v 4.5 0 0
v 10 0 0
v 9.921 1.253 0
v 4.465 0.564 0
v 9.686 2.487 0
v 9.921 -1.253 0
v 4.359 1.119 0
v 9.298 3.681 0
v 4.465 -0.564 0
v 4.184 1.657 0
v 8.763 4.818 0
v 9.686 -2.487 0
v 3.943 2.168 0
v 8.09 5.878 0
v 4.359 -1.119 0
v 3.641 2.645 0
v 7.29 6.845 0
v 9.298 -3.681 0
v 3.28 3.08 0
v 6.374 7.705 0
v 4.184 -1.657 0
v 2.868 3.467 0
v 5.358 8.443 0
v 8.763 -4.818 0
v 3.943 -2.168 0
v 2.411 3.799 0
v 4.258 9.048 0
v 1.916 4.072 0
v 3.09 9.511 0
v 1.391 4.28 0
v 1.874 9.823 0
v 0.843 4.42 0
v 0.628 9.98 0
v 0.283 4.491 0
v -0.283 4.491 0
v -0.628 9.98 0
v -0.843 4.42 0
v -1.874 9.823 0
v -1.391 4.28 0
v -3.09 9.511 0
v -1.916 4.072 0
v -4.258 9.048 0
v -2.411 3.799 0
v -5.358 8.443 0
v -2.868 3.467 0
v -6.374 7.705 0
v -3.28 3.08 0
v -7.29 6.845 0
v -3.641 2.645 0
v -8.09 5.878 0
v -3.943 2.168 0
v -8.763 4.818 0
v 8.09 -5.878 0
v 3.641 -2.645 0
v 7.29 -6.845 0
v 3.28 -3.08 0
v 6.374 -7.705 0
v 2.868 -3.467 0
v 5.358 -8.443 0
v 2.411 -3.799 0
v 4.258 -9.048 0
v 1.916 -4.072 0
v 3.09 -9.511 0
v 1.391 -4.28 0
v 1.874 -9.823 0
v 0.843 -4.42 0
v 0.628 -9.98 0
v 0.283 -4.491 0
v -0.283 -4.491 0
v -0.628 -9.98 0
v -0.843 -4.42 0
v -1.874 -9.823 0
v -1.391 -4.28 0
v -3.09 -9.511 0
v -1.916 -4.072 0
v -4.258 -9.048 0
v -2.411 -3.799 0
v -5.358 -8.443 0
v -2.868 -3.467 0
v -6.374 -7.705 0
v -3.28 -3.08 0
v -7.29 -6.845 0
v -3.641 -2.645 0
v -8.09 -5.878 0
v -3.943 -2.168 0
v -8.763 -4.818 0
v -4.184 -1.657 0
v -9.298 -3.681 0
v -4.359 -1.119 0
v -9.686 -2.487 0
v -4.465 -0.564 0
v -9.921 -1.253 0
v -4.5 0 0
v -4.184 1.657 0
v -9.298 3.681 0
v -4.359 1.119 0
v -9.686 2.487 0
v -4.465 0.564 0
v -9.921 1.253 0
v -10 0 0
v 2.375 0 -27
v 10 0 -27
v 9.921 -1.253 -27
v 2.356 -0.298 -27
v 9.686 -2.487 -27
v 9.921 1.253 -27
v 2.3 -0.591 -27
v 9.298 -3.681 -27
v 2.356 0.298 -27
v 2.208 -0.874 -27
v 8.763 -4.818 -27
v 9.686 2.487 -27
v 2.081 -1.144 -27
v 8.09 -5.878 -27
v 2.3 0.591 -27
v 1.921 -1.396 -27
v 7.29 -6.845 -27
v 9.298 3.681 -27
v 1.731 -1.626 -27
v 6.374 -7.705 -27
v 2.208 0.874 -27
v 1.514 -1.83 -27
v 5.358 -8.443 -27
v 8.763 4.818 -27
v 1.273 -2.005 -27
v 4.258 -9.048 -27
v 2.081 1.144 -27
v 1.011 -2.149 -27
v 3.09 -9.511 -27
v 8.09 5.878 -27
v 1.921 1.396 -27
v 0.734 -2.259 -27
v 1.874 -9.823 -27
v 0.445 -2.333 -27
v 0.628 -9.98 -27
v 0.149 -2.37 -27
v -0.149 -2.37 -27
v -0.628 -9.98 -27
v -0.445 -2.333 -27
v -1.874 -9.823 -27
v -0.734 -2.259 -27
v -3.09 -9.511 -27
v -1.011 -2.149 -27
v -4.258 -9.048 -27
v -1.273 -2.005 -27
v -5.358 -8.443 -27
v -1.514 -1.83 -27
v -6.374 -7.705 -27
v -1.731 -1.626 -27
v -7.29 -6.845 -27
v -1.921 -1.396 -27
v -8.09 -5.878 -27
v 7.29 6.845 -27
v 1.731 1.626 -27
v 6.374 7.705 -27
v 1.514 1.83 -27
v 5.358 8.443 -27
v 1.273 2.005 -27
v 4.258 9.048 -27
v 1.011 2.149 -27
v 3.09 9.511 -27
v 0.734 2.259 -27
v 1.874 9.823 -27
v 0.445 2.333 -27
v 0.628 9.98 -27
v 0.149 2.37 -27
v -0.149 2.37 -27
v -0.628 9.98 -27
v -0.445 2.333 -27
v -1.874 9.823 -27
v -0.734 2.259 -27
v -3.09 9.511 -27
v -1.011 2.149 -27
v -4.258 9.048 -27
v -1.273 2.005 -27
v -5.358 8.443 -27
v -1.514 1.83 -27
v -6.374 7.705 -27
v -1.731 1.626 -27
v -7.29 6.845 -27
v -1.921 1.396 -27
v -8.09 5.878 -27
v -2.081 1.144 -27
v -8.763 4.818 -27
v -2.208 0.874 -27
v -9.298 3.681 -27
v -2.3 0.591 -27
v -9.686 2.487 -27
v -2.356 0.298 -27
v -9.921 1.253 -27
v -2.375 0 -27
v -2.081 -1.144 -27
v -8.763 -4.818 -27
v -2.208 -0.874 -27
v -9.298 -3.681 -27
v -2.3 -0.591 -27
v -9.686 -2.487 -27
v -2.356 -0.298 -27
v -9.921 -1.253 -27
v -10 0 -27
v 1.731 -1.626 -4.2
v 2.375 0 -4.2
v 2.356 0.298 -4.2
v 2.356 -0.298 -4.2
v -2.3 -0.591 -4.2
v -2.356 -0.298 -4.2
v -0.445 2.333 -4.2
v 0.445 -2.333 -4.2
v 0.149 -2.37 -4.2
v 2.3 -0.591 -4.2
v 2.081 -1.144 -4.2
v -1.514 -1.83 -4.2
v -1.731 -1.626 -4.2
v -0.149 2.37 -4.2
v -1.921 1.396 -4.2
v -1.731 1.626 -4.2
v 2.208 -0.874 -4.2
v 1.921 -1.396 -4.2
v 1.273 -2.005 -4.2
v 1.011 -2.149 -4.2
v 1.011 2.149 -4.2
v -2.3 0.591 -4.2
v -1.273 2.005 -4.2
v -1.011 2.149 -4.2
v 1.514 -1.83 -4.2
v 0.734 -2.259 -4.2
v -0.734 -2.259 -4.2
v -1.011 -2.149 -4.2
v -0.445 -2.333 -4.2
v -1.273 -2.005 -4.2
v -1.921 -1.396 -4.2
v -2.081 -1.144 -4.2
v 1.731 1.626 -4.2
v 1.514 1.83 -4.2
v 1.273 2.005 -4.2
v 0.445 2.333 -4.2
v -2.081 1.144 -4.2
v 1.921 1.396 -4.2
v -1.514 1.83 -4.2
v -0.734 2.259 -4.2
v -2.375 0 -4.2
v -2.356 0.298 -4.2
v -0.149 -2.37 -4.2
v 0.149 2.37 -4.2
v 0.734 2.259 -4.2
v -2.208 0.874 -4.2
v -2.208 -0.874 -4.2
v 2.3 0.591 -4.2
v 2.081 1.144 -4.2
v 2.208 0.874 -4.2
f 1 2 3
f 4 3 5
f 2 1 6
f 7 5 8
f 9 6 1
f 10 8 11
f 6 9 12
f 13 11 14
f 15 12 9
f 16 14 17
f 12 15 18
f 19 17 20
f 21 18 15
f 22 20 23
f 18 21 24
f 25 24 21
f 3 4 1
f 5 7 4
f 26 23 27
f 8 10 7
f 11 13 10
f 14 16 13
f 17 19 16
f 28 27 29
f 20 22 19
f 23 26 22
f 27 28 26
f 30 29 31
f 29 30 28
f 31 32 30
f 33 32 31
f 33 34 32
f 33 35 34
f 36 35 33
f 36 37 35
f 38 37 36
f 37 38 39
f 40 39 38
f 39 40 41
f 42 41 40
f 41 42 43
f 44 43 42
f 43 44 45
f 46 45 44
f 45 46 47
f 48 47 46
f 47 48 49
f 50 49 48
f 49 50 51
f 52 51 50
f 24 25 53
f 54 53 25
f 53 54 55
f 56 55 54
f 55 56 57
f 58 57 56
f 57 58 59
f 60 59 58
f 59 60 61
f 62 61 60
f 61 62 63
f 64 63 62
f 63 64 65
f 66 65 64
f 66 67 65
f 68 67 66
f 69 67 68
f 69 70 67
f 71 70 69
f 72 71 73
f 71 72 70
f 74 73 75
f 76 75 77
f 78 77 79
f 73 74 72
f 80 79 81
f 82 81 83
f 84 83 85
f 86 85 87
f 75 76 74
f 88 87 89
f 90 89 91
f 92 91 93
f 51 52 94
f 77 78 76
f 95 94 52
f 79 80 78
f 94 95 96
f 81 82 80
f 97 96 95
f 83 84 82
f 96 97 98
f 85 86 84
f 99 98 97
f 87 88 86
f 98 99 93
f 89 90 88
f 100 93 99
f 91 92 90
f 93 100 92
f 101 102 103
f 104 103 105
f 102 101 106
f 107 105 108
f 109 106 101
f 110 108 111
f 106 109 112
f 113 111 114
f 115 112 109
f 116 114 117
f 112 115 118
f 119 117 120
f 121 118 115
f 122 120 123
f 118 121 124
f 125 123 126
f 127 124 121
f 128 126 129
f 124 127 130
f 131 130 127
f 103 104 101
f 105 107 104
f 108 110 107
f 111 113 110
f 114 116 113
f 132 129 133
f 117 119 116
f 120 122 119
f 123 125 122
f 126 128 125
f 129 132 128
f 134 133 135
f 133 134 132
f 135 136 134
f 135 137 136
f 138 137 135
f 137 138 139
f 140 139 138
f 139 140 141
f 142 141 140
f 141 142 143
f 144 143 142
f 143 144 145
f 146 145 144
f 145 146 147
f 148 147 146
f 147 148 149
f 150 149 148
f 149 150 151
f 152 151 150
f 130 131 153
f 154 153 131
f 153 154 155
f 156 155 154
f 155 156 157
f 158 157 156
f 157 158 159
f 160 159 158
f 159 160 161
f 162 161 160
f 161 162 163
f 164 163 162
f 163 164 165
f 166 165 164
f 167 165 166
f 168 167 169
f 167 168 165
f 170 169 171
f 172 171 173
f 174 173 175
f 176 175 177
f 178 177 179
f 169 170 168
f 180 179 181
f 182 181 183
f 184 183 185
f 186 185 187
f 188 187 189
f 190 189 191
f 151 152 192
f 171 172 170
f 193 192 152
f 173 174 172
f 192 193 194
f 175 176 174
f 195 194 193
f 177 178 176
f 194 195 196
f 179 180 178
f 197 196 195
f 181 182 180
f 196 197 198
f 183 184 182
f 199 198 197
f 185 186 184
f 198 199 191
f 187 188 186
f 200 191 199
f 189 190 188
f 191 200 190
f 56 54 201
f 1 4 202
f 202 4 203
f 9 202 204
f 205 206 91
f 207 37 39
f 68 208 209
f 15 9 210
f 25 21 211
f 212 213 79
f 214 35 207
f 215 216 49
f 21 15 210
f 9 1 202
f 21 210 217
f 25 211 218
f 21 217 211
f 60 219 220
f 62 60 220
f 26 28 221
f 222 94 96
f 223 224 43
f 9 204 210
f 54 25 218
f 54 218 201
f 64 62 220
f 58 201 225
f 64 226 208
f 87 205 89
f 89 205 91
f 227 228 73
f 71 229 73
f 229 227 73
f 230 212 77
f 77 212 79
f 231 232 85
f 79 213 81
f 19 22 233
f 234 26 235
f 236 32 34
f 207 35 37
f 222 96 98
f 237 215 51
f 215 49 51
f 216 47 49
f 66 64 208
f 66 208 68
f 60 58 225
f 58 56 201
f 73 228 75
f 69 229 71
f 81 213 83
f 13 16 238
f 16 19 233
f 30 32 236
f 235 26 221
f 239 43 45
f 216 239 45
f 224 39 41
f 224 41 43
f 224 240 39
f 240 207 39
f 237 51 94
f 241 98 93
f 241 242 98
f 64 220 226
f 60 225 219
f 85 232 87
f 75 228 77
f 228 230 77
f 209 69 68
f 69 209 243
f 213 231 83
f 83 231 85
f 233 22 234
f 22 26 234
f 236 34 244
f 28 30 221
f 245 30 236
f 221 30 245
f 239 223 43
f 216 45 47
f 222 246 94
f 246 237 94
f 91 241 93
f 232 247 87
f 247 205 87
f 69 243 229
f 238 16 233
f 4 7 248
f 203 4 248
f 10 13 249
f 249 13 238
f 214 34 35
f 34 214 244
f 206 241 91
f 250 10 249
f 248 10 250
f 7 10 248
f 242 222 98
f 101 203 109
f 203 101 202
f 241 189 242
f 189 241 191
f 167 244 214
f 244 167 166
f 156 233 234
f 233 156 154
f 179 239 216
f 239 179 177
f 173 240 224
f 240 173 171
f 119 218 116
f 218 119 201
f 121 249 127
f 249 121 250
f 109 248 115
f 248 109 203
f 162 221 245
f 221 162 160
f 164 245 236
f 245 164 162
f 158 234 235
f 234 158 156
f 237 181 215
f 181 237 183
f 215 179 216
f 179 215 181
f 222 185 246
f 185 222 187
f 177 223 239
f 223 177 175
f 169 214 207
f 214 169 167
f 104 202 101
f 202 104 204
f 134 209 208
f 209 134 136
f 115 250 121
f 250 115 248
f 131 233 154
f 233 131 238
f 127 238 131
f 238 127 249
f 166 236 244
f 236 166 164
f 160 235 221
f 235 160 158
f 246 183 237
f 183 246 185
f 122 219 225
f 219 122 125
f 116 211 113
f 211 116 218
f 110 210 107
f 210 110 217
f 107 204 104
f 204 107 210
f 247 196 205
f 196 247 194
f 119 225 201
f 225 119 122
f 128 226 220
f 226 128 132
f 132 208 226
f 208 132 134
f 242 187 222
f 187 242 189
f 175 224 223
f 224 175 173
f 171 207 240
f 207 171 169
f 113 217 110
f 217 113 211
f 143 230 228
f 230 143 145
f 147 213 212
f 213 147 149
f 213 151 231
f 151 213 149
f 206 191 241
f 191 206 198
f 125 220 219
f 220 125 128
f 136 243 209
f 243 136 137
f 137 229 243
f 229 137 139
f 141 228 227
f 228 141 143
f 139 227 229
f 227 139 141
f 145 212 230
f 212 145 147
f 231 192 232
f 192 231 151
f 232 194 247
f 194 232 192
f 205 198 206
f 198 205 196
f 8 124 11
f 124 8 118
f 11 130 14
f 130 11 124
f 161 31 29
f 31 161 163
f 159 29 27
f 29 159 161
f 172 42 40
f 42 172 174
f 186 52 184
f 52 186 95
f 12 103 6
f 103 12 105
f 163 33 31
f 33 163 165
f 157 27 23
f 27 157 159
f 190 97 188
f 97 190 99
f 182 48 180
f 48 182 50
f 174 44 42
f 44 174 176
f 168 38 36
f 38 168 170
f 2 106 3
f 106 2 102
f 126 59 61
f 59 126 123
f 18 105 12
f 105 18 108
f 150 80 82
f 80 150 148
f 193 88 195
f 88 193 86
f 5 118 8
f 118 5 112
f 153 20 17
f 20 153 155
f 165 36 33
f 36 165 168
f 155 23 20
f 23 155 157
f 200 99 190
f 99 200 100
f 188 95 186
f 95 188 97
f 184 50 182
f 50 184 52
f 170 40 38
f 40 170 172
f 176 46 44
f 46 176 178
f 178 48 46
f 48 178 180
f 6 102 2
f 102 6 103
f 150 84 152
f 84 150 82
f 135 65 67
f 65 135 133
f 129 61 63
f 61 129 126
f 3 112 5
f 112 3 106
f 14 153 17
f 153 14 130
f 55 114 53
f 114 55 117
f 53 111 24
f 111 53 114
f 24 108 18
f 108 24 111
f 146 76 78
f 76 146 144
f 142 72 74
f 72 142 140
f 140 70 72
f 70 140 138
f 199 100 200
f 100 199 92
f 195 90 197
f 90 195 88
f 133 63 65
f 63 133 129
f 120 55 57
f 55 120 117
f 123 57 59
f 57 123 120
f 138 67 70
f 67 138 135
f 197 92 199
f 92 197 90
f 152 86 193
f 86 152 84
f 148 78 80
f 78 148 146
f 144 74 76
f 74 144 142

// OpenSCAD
$fn = 50;


difference() {
	union() {
		translate(v = [0, 0, -27.0000000000]) {
			cylinder(h = 27, r = 10.0000000000);
		}
	}
	union() {
		translate(v = [0, 0, 0]) {
			rotate(a = [0, 0, 0]) {
				difference() {
					union() {
						#translate(v = [0, 0, -27.0000000000]) {
							cylinder(h = 27, r = 2.2500000000);
						}
						#translate(v = [0, 0, -4.2000000000]) {
							cylinder(h = 4.2000000000, r = 10.0000000000, r1 = 2.3750000000, r2 = 4.5000000000);
						}
						#translate(v = [0, 0, -27.0000000000]) {
							cylinder(h = 27, r = 2.3750000000);
						}
						#translate(v = [0, 0, -27.0000000000]) {
							cylinder(h = 27, r = 2.2500000000);
						}
					}
					union();
				}
			}
		}
	}
}
